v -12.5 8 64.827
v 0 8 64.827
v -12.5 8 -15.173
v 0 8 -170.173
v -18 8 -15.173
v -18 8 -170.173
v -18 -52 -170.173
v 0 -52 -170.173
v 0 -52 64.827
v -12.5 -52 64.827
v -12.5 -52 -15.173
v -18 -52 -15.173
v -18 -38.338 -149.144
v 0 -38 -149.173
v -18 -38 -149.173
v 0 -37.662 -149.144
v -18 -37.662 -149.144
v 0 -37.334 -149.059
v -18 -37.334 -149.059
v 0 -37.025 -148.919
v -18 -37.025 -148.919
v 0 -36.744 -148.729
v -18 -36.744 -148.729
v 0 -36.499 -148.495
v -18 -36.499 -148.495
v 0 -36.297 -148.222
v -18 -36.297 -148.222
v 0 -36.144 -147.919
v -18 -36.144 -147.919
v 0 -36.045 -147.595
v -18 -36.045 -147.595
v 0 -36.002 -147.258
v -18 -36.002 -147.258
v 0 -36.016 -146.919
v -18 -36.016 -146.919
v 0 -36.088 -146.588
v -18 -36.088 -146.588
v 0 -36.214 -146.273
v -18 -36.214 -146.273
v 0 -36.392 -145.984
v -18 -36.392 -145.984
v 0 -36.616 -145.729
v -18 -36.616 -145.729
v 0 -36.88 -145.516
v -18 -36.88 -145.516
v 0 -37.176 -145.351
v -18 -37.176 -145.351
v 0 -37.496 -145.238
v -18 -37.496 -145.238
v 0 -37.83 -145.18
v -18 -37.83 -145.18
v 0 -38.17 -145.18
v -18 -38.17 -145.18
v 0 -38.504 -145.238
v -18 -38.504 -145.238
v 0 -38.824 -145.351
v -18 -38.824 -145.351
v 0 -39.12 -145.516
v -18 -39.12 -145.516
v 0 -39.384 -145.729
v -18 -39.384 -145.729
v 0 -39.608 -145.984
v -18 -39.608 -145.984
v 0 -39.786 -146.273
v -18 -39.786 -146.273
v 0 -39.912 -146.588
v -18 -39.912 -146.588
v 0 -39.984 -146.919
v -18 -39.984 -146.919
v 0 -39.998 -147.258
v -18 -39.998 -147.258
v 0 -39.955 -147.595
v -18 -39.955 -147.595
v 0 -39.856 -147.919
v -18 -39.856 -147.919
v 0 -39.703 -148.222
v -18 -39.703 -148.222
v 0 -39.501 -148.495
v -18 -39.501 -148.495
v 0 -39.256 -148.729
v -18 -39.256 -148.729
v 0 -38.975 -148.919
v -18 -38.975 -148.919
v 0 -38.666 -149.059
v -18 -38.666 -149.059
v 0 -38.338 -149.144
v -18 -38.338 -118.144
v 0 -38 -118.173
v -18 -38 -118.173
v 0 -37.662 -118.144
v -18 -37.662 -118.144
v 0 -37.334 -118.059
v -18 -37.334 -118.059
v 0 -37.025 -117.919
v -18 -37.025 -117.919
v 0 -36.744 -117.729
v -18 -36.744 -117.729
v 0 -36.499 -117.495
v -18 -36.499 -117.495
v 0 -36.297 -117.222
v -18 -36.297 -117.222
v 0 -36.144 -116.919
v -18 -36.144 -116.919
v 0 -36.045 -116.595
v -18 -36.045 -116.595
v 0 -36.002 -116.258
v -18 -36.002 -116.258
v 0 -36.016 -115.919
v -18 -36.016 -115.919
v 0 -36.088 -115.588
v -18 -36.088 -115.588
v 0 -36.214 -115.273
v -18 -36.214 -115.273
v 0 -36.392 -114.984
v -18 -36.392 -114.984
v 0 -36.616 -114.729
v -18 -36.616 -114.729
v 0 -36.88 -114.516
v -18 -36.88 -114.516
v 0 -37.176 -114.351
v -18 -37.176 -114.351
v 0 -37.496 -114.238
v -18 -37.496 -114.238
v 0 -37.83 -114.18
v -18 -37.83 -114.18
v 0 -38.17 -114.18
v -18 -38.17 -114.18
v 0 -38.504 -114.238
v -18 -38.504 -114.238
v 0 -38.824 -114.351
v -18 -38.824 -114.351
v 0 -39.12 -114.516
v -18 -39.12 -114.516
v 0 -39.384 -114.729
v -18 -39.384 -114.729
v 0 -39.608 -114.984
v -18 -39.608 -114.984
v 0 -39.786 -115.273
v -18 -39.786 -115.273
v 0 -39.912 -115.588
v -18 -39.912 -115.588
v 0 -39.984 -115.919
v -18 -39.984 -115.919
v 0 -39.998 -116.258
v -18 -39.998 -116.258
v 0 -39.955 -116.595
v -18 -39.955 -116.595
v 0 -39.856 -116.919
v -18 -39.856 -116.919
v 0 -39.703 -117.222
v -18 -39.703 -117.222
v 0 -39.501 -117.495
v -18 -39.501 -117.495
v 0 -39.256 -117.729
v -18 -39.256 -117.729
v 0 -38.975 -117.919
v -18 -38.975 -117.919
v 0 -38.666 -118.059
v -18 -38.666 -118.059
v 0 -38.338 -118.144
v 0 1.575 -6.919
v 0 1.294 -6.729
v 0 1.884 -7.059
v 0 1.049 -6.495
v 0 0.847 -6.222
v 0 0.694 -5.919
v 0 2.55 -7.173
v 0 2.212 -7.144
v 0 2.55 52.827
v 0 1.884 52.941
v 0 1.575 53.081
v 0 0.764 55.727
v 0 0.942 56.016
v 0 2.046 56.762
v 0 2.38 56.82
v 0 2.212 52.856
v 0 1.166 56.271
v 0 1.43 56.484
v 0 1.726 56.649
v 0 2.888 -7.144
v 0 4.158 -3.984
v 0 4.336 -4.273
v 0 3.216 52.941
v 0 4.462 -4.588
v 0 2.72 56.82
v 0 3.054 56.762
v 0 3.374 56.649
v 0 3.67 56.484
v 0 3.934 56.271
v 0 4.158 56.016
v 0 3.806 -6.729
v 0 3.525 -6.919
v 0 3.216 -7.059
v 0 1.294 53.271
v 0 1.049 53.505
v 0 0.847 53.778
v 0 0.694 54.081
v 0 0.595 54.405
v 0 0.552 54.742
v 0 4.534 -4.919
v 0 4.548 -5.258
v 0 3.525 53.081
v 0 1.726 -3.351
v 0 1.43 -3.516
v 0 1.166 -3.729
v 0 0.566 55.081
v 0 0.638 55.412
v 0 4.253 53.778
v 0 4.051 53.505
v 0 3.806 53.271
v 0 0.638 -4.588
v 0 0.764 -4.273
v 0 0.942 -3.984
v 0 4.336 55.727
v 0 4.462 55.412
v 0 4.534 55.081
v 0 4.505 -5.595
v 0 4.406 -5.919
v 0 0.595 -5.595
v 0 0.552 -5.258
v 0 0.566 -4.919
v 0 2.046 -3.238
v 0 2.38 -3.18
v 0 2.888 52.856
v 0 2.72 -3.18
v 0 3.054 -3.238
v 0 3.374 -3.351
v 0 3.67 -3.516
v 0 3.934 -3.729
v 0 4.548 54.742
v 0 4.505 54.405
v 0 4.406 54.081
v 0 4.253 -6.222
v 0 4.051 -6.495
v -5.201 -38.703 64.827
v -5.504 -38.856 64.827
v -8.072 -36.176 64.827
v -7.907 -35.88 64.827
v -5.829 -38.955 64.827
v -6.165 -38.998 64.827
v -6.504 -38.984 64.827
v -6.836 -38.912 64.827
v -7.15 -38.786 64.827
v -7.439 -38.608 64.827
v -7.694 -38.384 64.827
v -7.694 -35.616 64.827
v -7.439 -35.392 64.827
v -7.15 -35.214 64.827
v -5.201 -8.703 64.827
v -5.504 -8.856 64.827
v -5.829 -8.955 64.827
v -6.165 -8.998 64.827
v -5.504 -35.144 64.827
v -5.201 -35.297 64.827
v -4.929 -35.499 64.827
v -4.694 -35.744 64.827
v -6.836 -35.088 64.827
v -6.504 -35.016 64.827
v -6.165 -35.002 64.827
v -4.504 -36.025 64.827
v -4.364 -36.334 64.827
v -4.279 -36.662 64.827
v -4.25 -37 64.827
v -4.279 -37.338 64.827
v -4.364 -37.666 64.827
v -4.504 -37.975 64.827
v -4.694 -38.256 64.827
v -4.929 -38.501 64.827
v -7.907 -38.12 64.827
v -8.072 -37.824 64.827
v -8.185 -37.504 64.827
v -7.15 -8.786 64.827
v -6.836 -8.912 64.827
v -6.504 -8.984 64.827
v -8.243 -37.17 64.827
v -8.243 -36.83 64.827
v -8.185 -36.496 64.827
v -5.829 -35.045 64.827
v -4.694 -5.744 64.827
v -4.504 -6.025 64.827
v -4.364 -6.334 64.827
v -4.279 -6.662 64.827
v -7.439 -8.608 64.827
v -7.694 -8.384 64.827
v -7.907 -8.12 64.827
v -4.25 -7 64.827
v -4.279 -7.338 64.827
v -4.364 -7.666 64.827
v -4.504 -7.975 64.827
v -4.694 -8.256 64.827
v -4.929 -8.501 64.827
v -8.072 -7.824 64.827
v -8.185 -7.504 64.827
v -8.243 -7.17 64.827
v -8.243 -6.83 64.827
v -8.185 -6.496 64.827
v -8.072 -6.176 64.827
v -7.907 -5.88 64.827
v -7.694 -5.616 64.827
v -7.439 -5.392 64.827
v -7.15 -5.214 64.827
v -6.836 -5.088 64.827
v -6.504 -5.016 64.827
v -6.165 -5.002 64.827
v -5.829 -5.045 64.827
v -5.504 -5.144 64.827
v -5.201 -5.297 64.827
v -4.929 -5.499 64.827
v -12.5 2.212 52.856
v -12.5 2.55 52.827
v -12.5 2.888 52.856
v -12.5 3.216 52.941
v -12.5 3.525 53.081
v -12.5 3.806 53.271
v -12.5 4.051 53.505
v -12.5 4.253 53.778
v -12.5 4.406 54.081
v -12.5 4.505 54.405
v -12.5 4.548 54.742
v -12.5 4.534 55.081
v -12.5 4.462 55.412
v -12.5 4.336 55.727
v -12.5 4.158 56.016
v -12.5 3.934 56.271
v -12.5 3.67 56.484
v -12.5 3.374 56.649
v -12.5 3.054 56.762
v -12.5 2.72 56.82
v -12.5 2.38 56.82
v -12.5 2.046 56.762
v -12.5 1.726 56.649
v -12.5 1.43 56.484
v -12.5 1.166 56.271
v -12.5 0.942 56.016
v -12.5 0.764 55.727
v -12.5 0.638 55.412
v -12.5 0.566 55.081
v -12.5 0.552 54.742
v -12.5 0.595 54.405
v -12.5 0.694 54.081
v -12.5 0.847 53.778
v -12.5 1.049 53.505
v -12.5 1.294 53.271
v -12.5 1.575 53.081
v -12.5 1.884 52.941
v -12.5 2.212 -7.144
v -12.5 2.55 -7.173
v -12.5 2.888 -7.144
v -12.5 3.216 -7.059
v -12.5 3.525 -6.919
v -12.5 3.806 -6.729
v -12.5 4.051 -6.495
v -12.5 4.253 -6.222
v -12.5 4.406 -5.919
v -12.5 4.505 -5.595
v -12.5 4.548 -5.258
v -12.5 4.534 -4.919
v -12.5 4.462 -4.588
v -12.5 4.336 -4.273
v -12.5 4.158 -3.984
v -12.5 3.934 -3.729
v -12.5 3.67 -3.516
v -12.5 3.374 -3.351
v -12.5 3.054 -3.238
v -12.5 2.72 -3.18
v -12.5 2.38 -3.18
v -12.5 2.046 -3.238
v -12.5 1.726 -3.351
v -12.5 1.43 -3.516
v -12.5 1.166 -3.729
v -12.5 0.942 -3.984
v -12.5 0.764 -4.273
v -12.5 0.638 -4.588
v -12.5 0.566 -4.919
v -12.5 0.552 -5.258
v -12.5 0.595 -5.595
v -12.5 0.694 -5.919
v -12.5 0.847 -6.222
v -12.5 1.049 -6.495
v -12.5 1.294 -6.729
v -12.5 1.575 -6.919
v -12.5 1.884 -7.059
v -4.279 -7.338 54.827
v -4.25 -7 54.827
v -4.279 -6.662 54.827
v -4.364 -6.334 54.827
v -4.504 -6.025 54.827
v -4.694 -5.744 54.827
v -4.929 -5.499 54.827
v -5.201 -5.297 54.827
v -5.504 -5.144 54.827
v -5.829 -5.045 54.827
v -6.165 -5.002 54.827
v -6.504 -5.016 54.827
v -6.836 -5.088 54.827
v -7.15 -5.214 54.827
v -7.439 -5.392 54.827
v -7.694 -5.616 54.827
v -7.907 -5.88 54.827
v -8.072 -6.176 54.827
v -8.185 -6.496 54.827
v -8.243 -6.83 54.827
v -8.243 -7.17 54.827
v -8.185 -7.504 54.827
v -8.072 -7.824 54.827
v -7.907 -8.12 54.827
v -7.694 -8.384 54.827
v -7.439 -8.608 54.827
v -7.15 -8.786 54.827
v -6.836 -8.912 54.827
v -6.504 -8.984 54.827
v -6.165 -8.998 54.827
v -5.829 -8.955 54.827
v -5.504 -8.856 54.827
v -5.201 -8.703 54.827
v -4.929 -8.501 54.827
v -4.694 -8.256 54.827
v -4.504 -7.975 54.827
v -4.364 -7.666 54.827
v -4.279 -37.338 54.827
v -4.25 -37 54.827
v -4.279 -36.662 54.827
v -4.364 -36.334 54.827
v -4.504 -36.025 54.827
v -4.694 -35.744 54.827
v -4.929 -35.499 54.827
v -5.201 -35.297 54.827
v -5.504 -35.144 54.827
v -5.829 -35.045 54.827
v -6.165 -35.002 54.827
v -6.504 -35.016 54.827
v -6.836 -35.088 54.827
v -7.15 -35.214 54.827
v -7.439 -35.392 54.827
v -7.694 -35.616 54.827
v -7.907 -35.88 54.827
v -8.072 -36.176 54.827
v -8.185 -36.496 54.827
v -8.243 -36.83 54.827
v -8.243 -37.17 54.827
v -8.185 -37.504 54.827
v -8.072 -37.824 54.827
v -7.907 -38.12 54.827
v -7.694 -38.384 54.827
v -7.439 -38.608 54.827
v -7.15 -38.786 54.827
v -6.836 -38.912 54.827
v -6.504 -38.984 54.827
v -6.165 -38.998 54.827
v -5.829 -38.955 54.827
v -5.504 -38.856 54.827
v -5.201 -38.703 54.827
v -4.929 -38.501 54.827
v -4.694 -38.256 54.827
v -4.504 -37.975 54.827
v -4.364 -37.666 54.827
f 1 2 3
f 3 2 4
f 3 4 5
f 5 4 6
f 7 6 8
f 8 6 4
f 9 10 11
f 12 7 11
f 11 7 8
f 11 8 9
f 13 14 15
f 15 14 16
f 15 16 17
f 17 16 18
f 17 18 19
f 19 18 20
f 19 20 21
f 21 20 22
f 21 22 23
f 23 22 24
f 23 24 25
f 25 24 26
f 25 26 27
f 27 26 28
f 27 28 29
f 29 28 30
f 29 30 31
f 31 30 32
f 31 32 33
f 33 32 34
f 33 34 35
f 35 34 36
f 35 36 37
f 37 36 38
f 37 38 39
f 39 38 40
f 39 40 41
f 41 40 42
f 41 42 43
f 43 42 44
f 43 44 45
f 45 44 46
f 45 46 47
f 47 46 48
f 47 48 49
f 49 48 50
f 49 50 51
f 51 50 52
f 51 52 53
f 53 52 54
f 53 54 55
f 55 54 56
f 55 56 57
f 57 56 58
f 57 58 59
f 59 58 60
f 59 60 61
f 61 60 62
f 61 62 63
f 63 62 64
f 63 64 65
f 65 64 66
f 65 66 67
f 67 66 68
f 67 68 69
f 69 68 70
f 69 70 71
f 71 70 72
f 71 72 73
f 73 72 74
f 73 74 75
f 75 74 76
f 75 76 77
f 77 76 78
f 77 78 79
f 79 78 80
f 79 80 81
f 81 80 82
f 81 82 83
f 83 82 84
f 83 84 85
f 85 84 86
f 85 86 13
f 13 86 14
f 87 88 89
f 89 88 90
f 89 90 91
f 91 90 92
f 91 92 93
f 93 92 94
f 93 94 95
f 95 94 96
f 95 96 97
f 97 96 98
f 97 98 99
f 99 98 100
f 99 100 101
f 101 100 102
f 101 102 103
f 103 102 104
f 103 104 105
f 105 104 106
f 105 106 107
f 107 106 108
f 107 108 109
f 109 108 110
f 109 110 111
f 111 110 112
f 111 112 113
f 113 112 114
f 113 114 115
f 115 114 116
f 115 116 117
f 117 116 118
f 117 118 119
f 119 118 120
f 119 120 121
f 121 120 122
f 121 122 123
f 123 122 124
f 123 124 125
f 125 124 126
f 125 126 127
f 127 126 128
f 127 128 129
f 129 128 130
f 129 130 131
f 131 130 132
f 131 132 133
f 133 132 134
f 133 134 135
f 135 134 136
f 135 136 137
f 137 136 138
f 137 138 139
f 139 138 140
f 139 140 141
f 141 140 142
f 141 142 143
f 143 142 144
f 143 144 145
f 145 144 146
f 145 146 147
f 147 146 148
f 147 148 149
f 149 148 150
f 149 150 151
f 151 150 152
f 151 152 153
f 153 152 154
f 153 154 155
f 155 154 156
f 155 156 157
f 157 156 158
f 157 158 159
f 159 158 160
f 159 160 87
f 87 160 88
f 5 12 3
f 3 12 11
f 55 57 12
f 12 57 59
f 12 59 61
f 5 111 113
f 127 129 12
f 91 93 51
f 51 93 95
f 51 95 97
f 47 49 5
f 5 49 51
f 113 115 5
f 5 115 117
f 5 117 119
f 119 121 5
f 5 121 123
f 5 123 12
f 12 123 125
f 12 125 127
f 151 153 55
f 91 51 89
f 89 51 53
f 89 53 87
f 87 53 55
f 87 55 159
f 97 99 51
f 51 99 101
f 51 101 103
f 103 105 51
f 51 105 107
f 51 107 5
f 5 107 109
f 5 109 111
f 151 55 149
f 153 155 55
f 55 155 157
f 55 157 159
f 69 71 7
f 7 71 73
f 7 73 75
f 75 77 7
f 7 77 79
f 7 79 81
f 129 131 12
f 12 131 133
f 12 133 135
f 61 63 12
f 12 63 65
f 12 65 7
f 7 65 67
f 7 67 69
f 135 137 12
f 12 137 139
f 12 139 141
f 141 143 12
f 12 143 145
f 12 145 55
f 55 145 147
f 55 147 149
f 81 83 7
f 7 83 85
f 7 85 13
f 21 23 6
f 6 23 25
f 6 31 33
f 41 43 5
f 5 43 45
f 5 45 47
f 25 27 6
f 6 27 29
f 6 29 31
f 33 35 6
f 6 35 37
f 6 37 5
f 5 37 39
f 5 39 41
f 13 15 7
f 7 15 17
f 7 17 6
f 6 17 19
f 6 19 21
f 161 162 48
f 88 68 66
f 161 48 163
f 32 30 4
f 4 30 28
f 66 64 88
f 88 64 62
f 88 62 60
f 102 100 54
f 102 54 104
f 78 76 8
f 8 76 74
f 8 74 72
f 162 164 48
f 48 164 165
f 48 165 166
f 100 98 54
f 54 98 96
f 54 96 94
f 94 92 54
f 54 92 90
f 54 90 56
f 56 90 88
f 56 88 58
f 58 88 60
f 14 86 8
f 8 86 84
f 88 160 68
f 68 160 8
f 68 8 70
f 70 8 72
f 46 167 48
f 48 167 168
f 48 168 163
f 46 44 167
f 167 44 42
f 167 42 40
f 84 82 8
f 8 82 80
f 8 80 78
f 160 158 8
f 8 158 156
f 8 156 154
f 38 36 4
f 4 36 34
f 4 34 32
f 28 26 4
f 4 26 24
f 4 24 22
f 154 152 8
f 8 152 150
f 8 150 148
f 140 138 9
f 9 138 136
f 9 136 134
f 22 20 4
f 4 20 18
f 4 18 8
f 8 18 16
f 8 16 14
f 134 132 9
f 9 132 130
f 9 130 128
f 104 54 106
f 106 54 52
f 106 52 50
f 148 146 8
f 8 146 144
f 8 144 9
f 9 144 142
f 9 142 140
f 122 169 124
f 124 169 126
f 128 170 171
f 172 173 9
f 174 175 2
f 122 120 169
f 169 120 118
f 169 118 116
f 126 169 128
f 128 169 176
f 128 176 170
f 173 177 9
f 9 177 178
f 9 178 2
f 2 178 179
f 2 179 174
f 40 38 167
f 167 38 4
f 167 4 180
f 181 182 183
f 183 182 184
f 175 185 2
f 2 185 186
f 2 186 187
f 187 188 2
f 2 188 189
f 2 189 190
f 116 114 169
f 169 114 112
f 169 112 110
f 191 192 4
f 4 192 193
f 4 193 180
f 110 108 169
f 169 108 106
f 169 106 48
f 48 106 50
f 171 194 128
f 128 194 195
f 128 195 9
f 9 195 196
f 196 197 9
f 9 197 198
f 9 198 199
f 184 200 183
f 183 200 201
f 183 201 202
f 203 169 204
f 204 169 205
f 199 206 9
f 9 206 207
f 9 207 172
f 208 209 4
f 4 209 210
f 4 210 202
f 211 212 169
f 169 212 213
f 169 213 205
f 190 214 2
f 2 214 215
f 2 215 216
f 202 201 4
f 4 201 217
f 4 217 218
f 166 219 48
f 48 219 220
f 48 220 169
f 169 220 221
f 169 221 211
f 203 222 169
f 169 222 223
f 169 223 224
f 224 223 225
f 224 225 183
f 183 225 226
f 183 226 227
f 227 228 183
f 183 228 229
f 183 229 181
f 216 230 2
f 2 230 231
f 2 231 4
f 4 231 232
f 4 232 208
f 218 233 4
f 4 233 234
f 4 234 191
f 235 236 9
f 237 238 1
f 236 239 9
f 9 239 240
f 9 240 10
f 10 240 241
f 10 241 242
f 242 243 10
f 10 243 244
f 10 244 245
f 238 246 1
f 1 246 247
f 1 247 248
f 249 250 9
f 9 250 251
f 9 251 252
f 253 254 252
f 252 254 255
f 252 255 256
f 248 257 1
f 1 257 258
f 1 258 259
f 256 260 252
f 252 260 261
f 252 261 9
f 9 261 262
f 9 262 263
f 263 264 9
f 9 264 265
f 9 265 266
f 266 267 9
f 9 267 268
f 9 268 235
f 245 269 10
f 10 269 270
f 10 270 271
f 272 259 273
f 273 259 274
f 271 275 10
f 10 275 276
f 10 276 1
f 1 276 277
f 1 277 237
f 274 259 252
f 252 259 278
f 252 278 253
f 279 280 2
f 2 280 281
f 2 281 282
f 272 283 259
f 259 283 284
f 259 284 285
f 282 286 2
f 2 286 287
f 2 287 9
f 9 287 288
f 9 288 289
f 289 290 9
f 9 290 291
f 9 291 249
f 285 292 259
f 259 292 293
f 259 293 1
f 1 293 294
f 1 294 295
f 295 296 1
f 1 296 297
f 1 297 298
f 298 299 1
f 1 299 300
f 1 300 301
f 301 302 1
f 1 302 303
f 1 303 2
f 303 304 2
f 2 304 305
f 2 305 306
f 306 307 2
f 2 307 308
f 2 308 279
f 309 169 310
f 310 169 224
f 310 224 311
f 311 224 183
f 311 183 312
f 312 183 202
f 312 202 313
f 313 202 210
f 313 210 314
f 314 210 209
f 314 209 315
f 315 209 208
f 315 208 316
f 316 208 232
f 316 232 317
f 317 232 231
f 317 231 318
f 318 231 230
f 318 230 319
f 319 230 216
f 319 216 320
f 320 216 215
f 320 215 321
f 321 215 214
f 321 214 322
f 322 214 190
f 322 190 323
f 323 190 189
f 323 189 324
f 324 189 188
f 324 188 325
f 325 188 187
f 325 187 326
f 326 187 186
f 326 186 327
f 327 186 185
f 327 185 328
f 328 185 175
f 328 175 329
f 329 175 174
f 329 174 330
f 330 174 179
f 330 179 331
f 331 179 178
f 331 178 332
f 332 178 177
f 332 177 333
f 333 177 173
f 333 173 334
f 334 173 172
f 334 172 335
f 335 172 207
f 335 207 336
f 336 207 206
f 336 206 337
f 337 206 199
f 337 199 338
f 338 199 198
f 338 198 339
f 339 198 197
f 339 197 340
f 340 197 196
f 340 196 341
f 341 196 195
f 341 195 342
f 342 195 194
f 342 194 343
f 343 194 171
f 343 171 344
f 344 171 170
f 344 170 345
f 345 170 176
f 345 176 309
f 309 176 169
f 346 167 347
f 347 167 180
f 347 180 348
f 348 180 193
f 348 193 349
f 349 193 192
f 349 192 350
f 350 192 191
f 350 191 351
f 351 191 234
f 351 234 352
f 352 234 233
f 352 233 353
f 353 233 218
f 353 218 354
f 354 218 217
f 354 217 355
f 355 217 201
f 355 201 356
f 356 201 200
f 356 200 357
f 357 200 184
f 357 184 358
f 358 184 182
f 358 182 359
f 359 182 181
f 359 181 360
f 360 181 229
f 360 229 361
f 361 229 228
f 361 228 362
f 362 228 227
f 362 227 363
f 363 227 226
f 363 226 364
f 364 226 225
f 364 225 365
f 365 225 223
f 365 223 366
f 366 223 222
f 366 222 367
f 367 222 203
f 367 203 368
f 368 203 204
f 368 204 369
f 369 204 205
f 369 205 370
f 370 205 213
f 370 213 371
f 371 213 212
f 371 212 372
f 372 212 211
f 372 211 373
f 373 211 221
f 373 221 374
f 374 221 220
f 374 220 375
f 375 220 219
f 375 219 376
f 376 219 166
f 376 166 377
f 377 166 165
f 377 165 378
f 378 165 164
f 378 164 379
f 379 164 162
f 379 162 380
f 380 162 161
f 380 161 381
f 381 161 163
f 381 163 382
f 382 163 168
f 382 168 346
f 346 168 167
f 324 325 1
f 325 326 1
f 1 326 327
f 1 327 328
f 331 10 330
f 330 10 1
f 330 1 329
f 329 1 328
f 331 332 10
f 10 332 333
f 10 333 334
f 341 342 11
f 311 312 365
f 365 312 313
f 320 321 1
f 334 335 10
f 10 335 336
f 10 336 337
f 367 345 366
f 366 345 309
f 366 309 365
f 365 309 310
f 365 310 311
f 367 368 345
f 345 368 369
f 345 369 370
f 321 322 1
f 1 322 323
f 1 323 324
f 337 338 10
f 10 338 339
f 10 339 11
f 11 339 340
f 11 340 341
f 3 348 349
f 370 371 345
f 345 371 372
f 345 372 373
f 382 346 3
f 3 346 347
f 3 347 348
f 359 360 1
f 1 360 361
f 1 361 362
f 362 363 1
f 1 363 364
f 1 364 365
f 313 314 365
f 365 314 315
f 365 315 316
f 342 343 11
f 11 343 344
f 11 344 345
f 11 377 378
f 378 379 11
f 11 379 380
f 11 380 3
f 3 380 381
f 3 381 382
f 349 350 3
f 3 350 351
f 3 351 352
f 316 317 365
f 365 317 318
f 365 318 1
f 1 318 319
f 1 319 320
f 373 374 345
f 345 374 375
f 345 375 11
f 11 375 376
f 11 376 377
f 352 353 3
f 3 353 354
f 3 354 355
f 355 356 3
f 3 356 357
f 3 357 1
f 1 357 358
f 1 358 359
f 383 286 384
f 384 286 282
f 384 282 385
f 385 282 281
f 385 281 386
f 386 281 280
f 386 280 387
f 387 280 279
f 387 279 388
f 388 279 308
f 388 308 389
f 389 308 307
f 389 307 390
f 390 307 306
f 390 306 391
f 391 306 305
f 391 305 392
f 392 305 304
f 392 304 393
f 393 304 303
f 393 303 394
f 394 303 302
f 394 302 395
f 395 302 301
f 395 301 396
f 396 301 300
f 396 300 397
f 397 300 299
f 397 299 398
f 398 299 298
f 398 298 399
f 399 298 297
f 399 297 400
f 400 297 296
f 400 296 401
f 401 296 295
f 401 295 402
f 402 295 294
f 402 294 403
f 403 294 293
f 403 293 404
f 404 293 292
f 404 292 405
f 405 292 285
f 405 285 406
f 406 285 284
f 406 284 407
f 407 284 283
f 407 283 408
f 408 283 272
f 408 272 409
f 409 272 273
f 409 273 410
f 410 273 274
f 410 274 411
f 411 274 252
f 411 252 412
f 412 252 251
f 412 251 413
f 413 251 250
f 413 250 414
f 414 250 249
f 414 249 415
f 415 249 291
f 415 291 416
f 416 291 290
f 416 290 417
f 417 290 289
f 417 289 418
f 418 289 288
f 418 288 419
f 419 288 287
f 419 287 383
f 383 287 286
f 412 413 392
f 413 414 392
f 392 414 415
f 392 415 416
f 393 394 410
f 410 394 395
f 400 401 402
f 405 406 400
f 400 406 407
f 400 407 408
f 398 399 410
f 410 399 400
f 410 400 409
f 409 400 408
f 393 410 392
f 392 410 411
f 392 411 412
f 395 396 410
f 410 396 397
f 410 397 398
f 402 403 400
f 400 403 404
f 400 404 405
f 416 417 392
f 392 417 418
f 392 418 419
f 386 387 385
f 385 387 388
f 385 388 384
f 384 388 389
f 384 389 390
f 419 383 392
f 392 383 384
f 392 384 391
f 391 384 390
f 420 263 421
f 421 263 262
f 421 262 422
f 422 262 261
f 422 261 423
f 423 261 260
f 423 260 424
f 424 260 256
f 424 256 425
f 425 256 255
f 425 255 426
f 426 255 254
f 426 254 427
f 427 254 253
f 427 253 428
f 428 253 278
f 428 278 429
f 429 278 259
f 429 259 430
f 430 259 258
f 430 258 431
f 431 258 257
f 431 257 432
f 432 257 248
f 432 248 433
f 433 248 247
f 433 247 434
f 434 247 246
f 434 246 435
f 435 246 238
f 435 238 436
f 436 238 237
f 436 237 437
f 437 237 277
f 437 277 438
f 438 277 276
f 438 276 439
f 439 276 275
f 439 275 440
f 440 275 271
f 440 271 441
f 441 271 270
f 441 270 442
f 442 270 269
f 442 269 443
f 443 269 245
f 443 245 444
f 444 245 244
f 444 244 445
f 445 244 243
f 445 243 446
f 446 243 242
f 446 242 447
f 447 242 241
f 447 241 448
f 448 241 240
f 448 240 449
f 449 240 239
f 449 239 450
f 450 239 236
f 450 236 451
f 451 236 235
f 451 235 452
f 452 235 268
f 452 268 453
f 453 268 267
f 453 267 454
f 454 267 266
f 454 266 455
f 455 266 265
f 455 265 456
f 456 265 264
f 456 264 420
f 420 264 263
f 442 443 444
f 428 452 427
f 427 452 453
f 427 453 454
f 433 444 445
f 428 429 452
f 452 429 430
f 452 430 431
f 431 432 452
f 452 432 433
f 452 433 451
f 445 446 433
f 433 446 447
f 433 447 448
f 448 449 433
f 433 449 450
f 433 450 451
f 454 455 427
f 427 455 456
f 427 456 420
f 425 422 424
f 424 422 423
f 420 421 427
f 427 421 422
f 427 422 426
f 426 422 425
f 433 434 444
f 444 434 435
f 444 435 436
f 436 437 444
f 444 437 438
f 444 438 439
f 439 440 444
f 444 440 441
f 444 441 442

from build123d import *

# Parameters (mm, degrees)
ESQUISSE1_W             = 155
ESQUISSE1_H             = 60
ESQUISSE1_R             = 2
BOSS_EXTRU_1_DEPTH      = 18
ESQUISSE1_5_W           = 80
ESQUISSE1_5_H           = 60
ESQUISSE1_5_R           = 2
BOSS_EXTRU_2_DEPTH      = 12.5
ESQUISSE6_R             = 2
ENL_V_MAT_EXTRU_2_DEPTH = 10


with BuildPart() as part:
    # Esquisse1 → Boss.-Extru.1 (new body)
    with BuildSketch(Plane(origin=(0, 0, 0), x_dir=(0, 0, -1), z_dir=(1, 0, 0))):
        with Locations((92.673222626, -22)):
            Rectangle(ESQUISSE1_W, ESQUISSE1_H)
        with Locations((116.173222626, -38)):
            Circle(ESQUISSE1_R, mode=Mode.SUBTRACT)
        with Locations((147.173222626, -38)):
            Circle(ESQUISSE1_R, mode=Mode.SUBTRACT)
    extrude(amount=-BOSS_EXTRU_1_DEPTH)

    # Esquisse1<5> → Boss.-Extru.2 (add)
    with BuildSketch(Plane(origin=(0, 0, 0), x_dir=(0, 0, -1), z_dir=(1, 0, 0))):
        with Locations((-24.826777374, -22)):
            Rectangle(ESQUISSE1_5_W, ESQUISSE1_5_H)
        with Locations((-54.826777374, 2.55)):
            Circle(ESQUISSE1_5_R, mode=Mode.SUBTRACT)
        with Locations((5.173222626, 2.55)):
            Circle(ESQUISSE1_5_R, mode=Mode.SUBTRACT)
    extrude(amount=-BOSS_EXTRU_2_DEPTH)

    # Esquisse6 → Enlèv. mat.-Extru.2 (cut)
    with BuildSketch(Plane.XY.offset(64.826777374)):
        with Locations((-6.25, -7)):
            Circle(ESQUISSE6_R)
        with Locations((-6.25, -37)):
            Circle(ESQUISSE6_R)
    extrude(amount=-ENL_V_MAT_EXTRU_2_DEPTH, mode=Mode.SUBTRACT)


solid = part.part
